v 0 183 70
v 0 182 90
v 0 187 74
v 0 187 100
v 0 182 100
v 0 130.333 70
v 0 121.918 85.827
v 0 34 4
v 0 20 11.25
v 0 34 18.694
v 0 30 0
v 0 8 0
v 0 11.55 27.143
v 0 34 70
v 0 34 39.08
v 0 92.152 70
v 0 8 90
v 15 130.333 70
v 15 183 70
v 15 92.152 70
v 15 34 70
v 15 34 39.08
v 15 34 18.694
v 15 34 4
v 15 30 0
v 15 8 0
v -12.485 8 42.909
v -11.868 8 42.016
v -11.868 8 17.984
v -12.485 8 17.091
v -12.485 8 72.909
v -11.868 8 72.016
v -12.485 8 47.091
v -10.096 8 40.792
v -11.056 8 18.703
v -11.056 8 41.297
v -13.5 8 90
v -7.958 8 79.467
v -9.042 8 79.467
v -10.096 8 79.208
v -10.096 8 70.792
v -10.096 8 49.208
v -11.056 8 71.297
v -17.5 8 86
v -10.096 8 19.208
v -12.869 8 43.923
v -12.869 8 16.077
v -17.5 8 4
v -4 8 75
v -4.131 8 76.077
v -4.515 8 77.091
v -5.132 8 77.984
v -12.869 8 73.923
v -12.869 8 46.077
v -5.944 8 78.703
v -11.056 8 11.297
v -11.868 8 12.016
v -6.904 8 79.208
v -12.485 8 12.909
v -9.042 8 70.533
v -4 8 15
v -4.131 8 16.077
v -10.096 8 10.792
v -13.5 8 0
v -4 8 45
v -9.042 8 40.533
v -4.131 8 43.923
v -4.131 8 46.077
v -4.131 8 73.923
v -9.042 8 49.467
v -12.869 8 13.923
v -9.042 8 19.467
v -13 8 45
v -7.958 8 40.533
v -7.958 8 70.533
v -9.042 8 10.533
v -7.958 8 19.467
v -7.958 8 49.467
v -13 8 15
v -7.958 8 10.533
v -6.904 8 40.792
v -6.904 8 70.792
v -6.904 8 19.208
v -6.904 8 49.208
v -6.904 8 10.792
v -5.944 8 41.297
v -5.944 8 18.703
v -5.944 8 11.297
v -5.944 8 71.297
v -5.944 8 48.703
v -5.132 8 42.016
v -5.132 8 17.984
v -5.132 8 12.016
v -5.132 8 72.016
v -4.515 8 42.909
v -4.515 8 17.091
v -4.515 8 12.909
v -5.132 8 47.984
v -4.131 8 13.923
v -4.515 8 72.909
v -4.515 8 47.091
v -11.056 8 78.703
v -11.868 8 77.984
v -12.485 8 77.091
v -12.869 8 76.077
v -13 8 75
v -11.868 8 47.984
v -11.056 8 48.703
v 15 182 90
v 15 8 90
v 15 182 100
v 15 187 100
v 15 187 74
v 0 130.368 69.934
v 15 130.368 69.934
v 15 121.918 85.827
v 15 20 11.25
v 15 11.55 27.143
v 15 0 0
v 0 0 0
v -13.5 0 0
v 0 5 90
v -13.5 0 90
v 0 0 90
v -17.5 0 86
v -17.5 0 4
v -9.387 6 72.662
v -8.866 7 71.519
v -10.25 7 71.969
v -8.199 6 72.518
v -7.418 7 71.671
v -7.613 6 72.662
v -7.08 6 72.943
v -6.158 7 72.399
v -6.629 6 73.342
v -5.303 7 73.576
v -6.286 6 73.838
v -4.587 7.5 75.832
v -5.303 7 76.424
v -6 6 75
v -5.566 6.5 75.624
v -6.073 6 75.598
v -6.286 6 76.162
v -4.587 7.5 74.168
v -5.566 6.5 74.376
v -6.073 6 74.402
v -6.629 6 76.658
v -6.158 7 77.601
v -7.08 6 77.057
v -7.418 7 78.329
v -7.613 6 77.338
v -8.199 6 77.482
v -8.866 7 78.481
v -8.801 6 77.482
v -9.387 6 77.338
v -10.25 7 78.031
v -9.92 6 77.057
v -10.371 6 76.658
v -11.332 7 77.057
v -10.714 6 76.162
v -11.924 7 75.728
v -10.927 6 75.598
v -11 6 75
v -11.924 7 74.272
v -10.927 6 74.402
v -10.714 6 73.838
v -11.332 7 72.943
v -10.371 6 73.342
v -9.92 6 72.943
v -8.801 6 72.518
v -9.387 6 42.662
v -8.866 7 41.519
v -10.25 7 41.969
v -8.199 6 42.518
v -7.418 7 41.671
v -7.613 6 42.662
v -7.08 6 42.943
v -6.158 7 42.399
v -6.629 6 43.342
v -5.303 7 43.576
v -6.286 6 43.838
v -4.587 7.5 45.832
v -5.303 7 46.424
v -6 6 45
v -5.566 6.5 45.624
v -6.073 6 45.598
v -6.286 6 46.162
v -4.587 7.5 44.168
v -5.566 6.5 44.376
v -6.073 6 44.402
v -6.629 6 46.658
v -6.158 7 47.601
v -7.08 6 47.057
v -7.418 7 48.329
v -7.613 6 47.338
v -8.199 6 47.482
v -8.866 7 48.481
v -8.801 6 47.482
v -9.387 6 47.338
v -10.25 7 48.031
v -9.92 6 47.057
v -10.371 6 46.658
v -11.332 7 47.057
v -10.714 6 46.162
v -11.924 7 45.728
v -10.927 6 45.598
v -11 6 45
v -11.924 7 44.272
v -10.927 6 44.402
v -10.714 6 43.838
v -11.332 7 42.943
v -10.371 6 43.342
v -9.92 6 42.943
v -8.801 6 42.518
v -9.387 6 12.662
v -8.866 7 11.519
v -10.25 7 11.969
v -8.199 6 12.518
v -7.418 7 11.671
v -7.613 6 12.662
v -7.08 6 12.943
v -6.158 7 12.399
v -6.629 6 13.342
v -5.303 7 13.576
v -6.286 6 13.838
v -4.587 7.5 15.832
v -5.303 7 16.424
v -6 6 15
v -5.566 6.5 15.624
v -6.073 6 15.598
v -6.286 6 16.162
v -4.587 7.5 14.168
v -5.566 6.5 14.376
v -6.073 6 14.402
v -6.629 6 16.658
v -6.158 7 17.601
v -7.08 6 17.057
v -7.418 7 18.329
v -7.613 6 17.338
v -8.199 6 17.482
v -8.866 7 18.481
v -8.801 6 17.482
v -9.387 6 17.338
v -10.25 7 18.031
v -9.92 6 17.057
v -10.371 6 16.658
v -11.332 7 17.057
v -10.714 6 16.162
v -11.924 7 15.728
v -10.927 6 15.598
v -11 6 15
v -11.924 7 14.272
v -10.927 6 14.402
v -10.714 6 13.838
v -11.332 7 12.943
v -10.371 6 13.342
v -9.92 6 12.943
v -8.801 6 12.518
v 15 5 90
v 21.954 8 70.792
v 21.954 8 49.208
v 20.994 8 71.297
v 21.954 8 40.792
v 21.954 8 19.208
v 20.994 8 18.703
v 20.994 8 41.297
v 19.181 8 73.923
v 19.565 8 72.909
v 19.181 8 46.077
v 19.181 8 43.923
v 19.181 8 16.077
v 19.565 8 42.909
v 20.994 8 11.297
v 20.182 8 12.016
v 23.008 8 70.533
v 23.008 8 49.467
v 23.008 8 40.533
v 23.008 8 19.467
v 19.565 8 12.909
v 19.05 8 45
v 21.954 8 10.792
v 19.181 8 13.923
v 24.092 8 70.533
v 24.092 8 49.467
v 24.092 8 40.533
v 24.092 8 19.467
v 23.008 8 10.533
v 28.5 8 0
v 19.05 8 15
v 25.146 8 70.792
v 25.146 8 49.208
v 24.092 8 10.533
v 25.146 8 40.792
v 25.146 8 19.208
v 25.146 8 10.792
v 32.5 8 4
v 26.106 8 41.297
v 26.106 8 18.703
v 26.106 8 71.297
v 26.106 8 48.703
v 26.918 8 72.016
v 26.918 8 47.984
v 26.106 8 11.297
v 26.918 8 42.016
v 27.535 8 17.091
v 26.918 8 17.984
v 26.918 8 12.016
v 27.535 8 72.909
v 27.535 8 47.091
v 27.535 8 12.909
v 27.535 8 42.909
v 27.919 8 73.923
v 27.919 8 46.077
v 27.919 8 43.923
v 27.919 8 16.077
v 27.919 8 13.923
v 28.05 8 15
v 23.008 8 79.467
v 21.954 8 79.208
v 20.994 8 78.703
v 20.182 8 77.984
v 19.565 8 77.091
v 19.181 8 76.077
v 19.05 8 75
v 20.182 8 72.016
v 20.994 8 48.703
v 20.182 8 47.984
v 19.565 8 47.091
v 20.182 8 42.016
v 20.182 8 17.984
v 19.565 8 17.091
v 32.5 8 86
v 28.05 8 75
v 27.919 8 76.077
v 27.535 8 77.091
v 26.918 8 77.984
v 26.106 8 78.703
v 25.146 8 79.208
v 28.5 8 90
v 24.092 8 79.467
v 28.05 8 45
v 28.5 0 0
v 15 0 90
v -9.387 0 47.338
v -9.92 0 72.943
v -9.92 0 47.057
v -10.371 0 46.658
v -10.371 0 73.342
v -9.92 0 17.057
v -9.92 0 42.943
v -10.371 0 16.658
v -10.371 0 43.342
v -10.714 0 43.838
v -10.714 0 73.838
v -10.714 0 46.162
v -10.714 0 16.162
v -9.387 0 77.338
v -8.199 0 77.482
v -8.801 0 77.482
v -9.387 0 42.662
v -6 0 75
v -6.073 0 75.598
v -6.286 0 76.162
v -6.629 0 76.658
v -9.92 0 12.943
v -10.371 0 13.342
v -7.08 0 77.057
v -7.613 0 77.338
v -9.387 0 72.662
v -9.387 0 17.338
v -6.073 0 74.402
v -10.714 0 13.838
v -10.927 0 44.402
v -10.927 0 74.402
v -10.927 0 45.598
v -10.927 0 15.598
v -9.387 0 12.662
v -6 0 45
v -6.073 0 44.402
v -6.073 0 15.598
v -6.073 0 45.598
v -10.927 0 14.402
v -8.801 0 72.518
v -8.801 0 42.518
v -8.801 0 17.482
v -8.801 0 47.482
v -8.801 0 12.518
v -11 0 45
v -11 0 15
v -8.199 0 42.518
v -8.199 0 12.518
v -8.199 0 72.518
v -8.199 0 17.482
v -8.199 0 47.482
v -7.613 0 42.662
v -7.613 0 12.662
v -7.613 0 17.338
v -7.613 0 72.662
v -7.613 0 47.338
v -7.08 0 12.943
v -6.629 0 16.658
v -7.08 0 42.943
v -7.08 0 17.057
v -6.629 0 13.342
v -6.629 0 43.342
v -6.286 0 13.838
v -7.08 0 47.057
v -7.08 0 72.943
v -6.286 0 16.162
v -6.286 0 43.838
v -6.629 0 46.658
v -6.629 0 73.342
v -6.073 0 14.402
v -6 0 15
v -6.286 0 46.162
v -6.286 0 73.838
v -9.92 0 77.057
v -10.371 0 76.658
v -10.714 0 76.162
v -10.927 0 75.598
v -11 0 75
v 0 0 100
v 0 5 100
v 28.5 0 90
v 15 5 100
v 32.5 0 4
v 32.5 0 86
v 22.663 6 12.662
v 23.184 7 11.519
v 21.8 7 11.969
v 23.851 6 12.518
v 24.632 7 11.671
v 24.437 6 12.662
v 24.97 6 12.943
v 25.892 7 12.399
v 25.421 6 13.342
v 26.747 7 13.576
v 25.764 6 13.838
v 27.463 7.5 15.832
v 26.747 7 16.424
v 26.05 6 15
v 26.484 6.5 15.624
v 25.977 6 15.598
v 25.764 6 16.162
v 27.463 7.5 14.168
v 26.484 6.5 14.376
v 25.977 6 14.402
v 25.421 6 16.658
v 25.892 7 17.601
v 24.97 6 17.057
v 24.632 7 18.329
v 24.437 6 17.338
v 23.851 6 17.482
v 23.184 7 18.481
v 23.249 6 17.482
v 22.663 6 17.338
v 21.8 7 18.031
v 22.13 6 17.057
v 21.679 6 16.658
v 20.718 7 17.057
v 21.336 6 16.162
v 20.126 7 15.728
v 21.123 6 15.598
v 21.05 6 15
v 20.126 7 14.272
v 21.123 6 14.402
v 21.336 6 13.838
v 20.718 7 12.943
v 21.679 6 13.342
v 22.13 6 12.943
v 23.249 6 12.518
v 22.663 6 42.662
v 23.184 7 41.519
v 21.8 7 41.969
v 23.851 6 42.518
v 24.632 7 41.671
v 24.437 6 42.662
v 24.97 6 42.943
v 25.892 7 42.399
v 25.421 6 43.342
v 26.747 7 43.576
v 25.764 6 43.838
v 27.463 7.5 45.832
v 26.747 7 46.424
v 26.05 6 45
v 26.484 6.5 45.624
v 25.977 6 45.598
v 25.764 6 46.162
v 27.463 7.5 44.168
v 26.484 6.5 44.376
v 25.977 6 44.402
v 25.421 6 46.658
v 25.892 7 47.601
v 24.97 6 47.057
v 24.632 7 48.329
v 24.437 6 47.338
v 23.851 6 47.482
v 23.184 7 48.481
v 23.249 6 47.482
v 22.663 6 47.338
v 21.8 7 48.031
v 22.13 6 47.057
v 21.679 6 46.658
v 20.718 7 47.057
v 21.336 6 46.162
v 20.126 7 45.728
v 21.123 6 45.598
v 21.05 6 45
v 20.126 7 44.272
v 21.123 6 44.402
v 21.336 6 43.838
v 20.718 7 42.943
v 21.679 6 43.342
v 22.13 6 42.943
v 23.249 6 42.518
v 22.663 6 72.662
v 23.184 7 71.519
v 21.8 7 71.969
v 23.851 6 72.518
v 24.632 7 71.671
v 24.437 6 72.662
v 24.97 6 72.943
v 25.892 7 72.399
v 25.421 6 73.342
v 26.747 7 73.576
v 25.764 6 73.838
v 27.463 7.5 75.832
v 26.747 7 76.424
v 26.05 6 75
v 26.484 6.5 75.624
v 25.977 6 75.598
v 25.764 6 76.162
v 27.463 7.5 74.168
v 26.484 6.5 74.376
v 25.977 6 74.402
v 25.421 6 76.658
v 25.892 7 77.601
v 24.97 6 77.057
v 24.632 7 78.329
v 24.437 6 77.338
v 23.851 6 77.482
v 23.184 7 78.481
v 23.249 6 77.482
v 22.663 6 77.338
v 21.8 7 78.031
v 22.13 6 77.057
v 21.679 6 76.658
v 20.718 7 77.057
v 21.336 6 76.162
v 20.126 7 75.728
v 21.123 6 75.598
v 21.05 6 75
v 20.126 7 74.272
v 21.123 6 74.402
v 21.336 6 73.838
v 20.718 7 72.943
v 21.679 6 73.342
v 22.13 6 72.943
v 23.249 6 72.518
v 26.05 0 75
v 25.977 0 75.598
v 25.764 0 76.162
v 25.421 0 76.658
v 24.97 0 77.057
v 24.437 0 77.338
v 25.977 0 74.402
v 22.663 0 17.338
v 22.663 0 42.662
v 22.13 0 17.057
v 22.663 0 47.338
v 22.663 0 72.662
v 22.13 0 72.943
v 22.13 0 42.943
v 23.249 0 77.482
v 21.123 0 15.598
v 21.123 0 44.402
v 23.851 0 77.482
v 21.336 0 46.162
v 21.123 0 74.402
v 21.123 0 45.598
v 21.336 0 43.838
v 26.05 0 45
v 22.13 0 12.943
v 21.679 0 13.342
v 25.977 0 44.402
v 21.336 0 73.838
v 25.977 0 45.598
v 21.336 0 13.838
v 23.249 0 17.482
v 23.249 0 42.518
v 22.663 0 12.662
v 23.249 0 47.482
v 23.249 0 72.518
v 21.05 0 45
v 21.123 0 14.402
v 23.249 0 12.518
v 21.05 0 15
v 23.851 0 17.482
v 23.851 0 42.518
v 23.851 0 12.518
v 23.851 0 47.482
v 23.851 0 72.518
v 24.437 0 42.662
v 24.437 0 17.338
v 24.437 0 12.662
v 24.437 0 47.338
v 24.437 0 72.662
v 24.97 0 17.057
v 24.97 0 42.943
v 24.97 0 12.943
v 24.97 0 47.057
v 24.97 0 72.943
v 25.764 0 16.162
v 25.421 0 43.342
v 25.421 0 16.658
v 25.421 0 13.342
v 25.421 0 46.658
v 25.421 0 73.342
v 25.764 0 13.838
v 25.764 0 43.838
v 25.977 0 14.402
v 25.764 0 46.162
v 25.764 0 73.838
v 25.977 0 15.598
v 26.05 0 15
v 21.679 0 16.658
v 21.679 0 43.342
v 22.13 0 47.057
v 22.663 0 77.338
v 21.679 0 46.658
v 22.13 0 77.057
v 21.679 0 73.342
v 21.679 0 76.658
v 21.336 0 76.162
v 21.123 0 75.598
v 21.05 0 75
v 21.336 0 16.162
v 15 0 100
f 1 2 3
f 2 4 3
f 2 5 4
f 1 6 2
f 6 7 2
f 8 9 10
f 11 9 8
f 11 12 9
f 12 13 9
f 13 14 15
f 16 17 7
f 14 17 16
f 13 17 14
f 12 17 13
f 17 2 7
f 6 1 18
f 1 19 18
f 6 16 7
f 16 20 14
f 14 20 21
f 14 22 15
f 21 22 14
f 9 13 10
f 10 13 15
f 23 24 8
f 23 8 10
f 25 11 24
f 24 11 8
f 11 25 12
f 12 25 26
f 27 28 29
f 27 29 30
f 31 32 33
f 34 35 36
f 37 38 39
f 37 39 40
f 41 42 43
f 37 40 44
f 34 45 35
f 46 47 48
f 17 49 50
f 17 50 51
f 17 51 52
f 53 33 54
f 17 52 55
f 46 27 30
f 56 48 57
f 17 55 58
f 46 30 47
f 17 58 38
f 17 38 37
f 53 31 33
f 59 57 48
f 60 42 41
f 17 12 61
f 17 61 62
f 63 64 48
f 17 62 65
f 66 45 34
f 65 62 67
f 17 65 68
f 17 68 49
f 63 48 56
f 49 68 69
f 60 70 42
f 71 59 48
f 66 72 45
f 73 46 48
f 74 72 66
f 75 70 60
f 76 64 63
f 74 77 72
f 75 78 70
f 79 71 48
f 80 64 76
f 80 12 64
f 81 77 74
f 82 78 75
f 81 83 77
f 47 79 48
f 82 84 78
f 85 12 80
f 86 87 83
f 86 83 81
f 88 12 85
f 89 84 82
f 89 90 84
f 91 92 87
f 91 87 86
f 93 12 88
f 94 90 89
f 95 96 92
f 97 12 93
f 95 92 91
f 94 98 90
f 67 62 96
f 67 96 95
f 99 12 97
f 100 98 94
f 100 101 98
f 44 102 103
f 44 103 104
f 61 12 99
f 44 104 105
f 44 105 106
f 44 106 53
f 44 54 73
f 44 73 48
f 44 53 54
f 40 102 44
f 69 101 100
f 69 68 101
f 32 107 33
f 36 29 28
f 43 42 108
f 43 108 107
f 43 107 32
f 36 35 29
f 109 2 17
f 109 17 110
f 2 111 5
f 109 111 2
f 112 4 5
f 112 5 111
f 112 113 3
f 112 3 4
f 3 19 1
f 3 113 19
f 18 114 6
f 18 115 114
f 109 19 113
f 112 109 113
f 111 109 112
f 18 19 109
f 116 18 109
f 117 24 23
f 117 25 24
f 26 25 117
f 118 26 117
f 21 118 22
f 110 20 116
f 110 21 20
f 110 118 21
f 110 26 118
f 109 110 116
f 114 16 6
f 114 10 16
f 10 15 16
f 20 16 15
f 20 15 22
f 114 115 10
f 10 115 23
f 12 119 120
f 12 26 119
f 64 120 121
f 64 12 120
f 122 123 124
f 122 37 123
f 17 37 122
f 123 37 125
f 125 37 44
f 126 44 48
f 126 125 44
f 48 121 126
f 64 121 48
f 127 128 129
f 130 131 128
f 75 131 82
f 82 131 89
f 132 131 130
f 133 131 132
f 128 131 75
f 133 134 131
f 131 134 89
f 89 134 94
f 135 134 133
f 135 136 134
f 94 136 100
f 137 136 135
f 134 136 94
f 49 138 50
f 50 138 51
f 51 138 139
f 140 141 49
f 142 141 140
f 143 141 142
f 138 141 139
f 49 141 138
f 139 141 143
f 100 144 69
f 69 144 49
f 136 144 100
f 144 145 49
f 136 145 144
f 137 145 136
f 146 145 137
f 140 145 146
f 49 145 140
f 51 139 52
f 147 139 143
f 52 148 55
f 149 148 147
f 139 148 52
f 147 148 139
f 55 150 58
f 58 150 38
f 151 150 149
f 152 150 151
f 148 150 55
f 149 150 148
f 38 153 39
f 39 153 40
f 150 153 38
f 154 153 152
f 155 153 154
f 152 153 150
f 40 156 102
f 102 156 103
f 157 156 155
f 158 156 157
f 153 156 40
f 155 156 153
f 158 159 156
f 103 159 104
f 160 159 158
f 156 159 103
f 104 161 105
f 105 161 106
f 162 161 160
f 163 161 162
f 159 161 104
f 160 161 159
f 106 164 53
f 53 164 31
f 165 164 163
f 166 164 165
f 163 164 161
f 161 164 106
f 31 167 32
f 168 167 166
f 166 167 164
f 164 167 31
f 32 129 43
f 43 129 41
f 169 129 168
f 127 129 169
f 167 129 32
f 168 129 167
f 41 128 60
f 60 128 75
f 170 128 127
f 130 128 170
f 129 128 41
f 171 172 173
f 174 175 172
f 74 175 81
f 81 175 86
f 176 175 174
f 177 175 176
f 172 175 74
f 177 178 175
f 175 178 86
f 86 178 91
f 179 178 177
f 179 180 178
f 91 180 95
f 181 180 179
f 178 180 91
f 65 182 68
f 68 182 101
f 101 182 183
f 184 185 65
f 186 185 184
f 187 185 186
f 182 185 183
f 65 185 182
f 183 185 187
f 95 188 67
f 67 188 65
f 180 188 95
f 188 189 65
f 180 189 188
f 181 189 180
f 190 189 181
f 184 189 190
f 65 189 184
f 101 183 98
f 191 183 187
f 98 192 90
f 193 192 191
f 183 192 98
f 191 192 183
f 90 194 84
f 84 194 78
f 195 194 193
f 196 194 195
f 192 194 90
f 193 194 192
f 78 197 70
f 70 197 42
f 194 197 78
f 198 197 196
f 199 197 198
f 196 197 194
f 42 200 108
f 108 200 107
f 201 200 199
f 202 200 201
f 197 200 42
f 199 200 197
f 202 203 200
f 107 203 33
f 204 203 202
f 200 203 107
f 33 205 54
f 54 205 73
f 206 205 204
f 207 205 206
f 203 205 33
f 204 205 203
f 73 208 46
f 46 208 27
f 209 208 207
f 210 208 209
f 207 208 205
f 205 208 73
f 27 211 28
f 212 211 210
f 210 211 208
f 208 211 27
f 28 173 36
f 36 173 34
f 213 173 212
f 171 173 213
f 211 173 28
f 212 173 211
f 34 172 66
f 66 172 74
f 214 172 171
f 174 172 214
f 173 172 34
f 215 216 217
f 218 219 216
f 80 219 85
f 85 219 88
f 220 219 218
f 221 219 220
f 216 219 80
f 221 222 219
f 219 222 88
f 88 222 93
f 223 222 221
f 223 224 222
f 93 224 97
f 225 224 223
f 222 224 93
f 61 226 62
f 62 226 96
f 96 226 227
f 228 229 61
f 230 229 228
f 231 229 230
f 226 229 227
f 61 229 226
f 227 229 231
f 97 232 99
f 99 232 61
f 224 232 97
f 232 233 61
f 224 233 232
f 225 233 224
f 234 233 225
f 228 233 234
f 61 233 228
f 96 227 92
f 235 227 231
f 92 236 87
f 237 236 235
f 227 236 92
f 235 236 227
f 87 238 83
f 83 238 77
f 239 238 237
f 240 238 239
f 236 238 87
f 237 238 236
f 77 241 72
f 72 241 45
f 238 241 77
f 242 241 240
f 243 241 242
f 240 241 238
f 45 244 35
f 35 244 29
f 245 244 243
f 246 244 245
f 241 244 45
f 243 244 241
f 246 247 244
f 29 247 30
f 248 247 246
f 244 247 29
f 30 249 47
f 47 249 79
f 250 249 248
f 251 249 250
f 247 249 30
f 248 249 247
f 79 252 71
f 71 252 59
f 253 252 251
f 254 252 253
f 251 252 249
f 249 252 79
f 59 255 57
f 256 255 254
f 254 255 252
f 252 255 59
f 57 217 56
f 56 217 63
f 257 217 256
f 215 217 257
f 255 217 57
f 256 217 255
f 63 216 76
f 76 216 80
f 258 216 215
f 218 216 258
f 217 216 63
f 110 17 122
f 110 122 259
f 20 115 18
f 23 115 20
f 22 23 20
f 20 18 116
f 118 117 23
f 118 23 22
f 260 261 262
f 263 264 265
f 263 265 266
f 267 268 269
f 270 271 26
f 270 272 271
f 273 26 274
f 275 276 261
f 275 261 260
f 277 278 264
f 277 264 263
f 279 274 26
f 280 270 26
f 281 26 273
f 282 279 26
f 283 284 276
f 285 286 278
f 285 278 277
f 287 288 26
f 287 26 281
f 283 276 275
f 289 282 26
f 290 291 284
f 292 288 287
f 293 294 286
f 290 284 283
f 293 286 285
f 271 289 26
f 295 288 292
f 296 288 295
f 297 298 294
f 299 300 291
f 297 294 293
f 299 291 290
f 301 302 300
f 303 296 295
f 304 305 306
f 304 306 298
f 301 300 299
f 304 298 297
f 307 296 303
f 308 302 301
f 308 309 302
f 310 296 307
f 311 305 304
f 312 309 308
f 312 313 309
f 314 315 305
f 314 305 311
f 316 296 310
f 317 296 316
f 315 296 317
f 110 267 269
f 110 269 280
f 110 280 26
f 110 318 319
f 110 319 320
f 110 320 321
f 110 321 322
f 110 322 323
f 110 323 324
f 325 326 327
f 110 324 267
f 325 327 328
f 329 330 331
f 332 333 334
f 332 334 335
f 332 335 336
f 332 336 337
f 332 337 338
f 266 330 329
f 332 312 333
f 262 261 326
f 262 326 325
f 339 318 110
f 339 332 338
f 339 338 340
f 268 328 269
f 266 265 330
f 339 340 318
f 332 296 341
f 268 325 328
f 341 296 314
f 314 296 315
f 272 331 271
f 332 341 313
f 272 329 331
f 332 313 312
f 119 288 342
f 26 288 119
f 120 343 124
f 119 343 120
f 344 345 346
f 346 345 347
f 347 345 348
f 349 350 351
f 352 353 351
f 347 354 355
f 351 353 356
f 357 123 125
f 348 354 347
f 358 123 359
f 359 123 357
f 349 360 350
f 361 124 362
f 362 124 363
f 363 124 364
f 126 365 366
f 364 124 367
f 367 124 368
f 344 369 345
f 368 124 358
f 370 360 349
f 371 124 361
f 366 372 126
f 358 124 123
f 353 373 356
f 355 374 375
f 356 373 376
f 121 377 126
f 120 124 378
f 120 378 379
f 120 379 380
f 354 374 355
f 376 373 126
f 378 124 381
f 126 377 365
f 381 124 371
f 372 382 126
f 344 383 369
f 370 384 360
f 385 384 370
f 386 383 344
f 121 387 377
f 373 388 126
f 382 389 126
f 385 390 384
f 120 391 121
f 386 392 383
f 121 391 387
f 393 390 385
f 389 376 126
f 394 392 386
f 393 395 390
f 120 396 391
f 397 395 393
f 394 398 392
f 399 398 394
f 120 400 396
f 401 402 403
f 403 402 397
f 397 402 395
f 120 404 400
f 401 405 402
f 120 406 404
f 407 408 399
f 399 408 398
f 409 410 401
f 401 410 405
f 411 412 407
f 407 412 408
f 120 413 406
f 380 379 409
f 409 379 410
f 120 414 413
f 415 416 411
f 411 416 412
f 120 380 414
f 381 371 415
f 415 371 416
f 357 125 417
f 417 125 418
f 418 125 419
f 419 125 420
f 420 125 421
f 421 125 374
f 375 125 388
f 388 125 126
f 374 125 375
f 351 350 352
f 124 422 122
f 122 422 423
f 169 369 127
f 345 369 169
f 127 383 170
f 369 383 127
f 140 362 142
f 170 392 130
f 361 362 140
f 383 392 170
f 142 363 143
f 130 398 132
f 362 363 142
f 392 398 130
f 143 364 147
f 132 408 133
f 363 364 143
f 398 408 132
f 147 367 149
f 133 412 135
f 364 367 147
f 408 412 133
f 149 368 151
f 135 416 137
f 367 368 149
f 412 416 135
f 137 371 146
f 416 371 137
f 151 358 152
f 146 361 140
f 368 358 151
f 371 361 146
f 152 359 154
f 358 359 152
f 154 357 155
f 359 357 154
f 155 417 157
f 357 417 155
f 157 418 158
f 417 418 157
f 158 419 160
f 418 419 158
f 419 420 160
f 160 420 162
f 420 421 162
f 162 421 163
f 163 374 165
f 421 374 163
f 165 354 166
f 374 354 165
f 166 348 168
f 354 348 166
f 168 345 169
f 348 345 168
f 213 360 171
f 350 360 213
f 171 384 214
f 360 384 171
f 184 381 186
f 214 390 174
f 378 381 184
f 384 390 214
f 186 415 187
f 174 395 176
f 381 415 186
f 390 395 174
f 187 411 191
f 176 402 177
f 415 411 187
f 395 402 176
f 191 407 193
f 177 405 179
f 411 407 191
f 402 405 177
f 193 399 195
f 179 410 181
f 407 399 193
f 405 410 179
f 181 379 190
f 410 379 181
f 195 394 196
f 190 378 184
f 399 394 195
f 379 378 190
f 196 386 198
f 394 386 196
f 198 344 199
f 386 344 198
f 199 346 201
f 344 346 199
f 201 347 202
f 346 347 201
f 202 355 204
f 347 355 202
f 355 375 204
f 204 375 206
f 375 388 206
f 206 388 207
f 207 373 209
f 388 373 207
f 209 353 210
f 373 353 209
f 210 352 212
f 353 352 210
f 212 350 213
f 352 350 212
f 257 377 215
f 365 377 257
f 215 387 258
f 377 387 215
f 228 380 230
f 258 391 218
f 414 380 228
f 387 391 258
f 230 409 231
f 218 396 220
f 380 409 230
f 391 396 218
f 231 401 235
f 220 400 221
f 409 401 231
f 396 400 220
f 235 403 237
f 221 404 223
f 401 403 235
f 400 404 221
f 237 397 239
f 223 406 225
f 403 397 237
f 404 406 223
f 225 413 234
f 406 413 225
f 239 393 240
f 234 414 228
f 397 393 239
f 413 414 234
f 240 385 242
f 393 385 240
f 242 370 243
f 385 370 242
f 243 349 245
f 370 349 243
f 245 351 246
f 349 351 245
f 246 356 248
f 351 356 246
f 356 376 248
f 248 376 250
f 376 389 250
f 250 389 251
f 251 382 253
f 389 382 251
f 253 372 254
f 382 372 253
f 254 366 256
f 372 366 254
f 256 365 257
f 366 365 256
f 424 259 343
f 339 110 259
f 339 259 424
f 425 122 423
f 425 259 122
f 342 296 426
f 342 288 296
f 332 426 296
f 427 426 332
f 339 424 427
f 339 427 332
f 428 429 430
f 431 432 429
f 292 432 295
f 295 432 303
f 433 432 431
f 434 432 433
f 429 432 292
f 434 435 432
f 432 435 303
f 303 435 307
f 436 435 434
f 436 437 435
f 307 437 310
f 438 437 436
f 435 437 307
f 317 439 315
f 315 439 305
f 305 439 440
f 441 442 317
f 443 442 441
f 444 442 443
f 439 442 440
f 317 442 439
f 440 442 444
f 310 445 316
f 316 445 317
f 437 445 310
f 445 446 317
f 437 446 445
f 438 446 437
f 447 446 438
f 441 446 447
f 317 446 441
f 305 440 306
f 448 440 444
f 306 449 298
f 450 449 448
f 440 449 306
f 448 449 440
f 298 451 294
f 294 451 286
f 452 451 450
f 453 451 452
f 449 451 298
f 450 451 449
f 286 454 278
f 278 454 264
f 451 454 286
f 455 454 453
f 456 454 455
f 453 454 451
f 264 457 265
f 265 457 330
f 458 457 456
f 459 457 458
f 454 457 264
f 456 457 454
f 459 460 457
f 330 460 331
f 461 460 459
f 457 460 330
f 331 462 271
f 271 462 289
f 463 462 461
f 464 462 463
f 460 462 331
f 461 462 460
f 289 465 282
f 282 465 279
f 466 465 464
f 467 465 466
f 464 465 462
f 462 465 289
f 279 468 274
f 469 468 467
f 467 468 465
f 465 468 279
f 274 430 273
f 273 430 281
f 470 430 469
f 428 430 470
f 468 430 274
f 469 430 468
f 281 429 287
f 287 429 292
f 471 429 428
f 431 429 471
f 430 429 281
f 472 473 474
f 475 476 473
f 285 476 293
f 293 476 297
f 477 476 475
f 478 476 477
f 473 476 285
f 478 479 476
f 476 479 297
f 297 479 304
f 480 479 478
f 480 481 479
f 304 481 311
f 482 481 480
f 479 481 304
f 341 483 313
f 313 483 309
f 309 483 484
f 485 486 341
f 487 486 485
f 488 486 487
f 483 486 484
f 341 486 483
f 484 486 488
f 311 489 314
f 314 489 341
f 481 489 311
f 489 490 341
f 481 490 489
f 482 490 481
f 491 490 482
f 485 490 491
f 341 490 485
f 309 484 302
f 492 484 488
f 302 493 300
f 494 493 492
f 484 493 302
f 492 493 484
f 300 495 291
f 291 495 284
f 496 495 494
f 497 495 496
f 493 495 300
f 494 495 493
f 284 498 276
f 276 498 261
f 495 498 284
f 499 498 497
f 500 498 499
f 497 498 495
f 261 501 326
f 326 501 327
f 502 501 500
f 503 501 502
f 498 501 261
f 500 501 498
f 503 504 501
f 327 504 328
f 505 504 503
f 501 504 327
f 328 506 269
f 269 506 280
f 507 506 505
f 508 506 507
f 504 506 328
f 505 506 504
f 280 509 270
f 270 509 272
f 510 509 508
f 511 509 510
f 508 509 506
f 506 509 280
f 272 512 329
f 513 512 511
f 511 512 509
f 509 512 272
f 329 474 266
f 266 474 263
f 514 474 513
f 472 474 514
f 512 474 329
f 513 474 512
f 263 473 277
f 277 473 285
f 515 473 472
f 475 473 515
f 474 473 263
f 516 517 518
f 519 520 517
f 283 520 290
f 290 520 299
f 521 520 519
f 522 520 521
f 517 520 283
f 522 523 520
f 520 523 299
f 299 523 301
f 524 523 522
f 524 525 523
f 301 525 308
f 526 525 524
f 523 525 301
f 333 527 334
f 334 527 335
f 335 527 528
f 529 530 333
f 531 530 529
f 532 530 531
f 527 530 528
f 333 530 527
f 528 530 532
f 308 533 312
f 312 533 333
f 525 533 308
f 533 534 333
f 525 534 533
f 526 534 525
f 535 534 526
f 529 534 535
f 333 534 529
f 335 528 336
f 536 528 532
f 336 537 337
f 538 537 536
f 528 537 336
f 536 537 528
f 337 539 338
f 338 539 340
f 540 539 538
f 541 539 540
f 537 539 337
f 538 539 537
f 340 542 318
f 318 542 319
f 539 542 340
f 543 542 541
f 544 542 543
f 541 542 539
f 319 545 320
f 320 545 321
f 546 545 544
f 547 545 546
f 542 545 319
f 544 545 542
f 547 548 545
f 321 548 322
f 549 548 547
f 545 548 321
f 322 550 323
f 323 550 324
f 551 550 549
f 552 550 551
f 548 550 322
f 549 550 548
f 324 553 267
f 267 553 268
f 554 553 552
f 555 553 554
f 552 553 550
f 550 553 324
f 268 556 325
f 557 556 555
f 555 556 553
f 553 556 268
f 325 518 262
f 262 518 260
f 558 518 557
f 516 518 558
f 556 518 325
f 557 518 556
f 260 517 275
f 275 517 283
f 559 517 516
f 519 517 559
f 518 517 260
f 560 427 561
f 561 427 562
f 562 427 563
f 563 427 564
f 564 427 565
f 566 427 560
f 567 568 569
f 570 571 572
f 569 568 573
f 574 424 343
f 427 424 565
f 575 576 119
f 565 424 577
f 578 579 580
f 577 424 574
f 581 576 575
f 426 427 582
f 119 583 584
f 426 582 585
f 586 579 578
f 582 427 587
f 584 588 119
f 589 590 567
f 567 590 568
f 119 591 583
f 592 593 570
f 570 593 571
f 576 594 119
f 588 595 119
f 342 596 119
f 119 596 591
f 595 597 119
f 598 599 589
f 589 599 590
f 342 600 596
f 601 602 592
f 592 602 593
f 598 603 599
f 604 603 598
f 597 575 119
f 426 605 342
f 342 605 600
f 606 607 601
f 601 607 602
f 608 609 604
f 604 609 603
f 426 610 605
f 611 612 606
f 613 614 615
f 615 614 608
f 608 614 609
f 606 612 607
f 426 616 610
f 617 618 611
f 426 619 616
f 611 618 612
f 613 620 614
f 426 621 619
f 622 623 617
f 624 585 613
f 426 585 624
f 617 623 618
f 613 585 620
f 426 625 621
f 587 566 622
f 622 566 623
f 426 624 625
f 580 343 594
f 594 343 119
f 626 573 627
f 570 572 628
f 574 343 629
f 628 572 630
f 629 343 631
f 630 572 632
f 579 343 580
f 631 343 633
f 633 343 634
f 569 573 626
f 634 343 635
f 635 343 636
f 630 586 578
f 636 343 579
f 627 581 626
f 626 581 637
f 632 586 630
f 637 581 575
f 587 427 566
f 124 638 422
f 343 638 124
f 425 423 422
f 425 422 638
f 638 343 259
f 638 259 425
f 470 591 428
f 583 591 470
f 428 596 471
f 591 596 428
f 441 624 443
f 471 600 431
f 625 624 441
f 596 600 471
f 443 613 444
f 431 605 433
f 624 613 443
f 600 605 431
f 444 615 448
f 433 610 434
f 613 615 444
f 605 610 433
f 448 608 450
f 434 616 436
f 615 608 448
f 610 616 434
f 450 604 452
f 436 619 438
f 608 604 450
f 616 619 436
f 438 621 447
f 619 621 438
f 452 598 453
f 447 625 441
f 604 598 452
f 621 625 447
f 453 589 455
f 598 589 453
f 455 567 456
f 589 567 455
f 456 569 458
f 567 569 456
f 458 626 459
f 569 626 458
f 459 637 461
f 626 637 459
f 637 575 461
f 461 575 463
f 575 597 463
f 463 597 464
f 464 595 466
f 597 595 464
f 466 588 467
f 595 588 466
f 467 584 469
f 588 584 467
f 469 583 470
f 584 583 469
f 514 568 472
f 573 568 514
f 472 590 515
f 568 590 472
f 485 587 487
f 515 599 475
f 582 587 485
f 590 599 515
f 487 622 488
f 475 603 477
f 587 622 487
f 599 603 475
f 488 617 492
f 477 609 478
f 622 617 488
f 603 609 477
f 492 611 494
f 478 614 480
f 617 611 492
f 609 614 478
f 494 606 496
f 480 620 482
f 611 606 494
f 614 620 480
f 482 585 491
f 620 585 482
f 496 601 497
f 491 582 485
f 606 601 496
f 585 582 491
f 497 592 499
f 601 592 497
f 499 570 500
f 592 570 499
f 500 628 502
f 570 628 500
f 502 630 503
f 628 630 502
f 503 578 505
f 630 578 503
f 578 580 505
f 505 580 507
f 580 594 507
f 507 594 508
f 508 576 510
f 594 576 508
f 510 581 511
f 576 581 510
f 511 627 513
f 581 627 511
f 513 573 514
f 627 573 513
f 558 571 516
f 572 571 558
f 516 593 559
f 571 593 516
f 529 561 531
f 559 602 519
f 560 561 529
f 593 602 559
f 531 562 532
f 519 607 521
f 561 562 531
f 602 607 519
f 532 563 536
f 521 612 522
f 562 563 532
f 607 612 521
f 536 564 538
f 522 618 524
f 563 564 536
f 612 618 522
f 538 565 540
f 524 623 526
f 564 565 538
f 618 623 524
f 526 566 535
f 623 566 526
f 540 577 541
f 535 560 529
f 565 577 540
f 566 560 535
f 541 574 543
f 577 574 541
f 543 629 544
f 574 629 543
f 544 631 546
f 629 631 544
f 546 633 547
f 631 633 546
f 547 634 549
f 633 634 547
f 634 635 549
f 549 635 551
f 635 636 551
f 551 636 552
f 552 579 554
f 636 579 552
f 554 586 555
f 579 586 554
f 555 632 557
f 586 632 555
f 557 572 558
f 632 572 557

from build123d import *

# Parameters (mm, degrees)
CYLINDER001_R          = 2.5
CYLINDER001_DEPTH      = 20
CYLINDER002_R          = 2.5
CYLINDER002_DEPTH      = 20
CYLINDER004_R          = 2.5
CYLINDER004_DEPTH      = 20
CYLINDER005_R          = 2.5
CYLINDER005_DEPTH      = 20
CYLINDER003_R          = 2.5
CYLINDER003_DEPTH      = 20
CYLINDER_R             = 2.5
CYLINDER_DEPTH         = 20
BOX004_W               = 50
BOX004_H               = 8
BOX004_DEPTH           = 90
CHAMFER_SIZE           = 4
CHAMFER001_SIZE        = 2
BOX002_W               = 15
BOX002_H               = 177
BOX002_DEPTH           = 100
BOX003_W               = 15
BOX003_H               = 125
BOX003_DEPTH           = 18
BOX003_PLACEMENT_ANGLE = 28
BOX001_W               = 15
BOX001_H               = 163
BOX001_DEPTH           = 100
BOX_W                  = 15
BOX_H                  = 187
BOX_DEPTH              = 100
CHAMFER002_SIZE        = 4


with BuildPart() as cylinder001:
    # Cylinder001 → Cylinder001 (new body)
    with BuildSketch(Plane(origin=(-8.5, 14, 15), x_dir=(1, 0, 0), z_dir=(0, -1, 0))):
        Circle(CYLINDER001_R)
    extrude(amount=CYLINDER001_DEPTH)


with BuildPart() as cylinder002:
    # Cylinder002 → Cylinder002 (new body)
    with BuildSketch(Plane(origin=(23.55, 14, 45), x_dir=(1, 0, 0), z_dir=(0, -1, 0))):
        Circle(CYLINDER002_R)
    extrude(amount=CYLINDER002_DEPTH)


with BuildPart() as cylinder004:
    # Cylinder004 → Cylinder004 (new body)
    with BuildSketch(Plane(origin=(23.55, 14, 75), x_dir=(1, 0, 0), z_dir=(0, -1, 0))):
        Circle(CYLINDER004_R)
    extrude(amount=CYLINDER004_DEPTH)


with BuildPart() as cylinder005:
    # Cylinder005 → Cylinder005 (new body)
    with BuildSketch(Plane(origin=(-8.5, 14, 75), x_dir=(1, 0, 0), z_dir=(0, -1, 0))):
        Circle(CYLINDER005_R)
    extrude(amount=CYLINDER005_DEPTH)


with BuildPart() as cylinder003:
    # Cylinder003 → Cylinder003 (new body)
    with BuildSketch(Plane(origin=(-8.5, 14, 45), x_dir=(1, 0, 0), z_dir=(0, -1, 0))):
        Circle(CYLINDER003_R)
    extrude(amount=CYLINDER003_DEPTH)


with BuildPart() as compound:
    # Cylinder → Cylinder (new body)
    with BuildSketch(Plane(origin=(23.55, 14, 15), x_dir=(1, 0, 0), z_dir=(0, -1, 0))):
        Circle(CYLINDER_R)
    extrude(amount=CYLINDER_DEPTH)

    # Compound: union Cylinder001, Cylinder002, Cylinder004, Cylinder005, Cylinder003
    add(cylinder001.part)
    add(cylinder002.part)
    add(cylinder004.part)
    add(cylinder005.part)
    add(cylinder003.part)


with BuildPart() as backplate:
    # Box004 → Box004 (new body)
    with BuildSketch(Plane(origin=(-17.5, 0, 0), x_dir=(1, 0, 0), z_dir=(0, 0, 1))):
        with Locations((25, 4)):
            Rectangle(BOX004_W, BOX004_H)
    extrude(amount=BOX004_DEPTH)

    # Chamfer
    chamfer_edges = [backplate.edges().sort_by_distance(p)[0] for p in [
        (-17.5, 4, 90),
        (-17.5, 4, 0),
        (32.5, 4, 90),
        (32.5, 4, 0),
    ]]
    chamfer(chamfer_edges, length=CHAMFER_SIZE)

    # Cut001: cut Compound
    add(compound.part, mode=Mode.SUBTRACT)

    # Chamfer001
    chamfer001_edges = [backplate.edges().sort_by_distance(p)[0] for p in [
        (21.05, 8, 45),
        (-11, 8, 45),
        (-11, 8, 75),
        (21.05, 8, 75),
        (21.05, 8, 15),
        (-11, 8, 15),
    ]]
    chamfer(chamfer001_edges, length=CHAMFER001_SIZE)


with BuildPart() as cube002:
    # Box002 → Box002 (new body)
    with BuildSketch(Plane(origin=(0, 5, 90), x_dir=(1, 0, 0), z_dir=(0, 0, 1))):
        with Locations((7.5, 88.5)):
            Rectangle(BOX002_W, BOX002_H)
    extrude(amount=BOX002_DEPTH)


with BuildPart() as cube003:
    # Box003 → Box003 (new body)
    with BuildSketch(Plane.XY):
        with Locations((7.5, 62.5)):
            Rectangle(BOX003_W, BOX003_H)
    extrude(amount=BOX003_DEPTH)


with BuildPart() as cube003_1:
    # Box003 placement: moved
    add(cube003.part.moved(Location((0, 20, 11.25))).rotate(Axis((0, 20, 11.25), (1, 0, 0)), BOX003_PLACEMENT_ANGLE))


with BuildPart() as cube001:
    # Box001 → Box001 (new body)
    with BuildSketch(Plane(origin=(0, 34, -30), x_dir=(1, 0, 0), z_dir=(0, 0, 1))):
        with Locations((7.5, 81.5)):
            Rectangle(BOX001_W, BOX001_H)
    extrude(amount=BOX001_DEPTH)


with BuildPart() as final:
    # Box → Box (new body)
    with BuildSketch(Plane.XY):
        with Locations((7.5, 93.5)):
            Rectangle(BOX_W, BOX_H)
    extrude(amount=BOX_DEPTH)

    # Cut: cut Cube001
    add(cube001.part, mode=Mode.SUBTRACT)

    # Fusion: union Cube003
    add(cube003_1.part)

    # Cut002: cut Cube002
    add(cube002.part, mode=Mode.SUBTRACT)

    # Chamfer002
    chamfer002_edges = [final.edges().sort_by_distance(p)[0] for p in [
        (7.5, 187, 70),
        (7.5, 34, 0),
    ]]
    chamfer(chamfer002_edges, length=CHAMFER002_SIZE)

    # Fusion001: union Backplate
    add(backplate.part)


solid = final.part
